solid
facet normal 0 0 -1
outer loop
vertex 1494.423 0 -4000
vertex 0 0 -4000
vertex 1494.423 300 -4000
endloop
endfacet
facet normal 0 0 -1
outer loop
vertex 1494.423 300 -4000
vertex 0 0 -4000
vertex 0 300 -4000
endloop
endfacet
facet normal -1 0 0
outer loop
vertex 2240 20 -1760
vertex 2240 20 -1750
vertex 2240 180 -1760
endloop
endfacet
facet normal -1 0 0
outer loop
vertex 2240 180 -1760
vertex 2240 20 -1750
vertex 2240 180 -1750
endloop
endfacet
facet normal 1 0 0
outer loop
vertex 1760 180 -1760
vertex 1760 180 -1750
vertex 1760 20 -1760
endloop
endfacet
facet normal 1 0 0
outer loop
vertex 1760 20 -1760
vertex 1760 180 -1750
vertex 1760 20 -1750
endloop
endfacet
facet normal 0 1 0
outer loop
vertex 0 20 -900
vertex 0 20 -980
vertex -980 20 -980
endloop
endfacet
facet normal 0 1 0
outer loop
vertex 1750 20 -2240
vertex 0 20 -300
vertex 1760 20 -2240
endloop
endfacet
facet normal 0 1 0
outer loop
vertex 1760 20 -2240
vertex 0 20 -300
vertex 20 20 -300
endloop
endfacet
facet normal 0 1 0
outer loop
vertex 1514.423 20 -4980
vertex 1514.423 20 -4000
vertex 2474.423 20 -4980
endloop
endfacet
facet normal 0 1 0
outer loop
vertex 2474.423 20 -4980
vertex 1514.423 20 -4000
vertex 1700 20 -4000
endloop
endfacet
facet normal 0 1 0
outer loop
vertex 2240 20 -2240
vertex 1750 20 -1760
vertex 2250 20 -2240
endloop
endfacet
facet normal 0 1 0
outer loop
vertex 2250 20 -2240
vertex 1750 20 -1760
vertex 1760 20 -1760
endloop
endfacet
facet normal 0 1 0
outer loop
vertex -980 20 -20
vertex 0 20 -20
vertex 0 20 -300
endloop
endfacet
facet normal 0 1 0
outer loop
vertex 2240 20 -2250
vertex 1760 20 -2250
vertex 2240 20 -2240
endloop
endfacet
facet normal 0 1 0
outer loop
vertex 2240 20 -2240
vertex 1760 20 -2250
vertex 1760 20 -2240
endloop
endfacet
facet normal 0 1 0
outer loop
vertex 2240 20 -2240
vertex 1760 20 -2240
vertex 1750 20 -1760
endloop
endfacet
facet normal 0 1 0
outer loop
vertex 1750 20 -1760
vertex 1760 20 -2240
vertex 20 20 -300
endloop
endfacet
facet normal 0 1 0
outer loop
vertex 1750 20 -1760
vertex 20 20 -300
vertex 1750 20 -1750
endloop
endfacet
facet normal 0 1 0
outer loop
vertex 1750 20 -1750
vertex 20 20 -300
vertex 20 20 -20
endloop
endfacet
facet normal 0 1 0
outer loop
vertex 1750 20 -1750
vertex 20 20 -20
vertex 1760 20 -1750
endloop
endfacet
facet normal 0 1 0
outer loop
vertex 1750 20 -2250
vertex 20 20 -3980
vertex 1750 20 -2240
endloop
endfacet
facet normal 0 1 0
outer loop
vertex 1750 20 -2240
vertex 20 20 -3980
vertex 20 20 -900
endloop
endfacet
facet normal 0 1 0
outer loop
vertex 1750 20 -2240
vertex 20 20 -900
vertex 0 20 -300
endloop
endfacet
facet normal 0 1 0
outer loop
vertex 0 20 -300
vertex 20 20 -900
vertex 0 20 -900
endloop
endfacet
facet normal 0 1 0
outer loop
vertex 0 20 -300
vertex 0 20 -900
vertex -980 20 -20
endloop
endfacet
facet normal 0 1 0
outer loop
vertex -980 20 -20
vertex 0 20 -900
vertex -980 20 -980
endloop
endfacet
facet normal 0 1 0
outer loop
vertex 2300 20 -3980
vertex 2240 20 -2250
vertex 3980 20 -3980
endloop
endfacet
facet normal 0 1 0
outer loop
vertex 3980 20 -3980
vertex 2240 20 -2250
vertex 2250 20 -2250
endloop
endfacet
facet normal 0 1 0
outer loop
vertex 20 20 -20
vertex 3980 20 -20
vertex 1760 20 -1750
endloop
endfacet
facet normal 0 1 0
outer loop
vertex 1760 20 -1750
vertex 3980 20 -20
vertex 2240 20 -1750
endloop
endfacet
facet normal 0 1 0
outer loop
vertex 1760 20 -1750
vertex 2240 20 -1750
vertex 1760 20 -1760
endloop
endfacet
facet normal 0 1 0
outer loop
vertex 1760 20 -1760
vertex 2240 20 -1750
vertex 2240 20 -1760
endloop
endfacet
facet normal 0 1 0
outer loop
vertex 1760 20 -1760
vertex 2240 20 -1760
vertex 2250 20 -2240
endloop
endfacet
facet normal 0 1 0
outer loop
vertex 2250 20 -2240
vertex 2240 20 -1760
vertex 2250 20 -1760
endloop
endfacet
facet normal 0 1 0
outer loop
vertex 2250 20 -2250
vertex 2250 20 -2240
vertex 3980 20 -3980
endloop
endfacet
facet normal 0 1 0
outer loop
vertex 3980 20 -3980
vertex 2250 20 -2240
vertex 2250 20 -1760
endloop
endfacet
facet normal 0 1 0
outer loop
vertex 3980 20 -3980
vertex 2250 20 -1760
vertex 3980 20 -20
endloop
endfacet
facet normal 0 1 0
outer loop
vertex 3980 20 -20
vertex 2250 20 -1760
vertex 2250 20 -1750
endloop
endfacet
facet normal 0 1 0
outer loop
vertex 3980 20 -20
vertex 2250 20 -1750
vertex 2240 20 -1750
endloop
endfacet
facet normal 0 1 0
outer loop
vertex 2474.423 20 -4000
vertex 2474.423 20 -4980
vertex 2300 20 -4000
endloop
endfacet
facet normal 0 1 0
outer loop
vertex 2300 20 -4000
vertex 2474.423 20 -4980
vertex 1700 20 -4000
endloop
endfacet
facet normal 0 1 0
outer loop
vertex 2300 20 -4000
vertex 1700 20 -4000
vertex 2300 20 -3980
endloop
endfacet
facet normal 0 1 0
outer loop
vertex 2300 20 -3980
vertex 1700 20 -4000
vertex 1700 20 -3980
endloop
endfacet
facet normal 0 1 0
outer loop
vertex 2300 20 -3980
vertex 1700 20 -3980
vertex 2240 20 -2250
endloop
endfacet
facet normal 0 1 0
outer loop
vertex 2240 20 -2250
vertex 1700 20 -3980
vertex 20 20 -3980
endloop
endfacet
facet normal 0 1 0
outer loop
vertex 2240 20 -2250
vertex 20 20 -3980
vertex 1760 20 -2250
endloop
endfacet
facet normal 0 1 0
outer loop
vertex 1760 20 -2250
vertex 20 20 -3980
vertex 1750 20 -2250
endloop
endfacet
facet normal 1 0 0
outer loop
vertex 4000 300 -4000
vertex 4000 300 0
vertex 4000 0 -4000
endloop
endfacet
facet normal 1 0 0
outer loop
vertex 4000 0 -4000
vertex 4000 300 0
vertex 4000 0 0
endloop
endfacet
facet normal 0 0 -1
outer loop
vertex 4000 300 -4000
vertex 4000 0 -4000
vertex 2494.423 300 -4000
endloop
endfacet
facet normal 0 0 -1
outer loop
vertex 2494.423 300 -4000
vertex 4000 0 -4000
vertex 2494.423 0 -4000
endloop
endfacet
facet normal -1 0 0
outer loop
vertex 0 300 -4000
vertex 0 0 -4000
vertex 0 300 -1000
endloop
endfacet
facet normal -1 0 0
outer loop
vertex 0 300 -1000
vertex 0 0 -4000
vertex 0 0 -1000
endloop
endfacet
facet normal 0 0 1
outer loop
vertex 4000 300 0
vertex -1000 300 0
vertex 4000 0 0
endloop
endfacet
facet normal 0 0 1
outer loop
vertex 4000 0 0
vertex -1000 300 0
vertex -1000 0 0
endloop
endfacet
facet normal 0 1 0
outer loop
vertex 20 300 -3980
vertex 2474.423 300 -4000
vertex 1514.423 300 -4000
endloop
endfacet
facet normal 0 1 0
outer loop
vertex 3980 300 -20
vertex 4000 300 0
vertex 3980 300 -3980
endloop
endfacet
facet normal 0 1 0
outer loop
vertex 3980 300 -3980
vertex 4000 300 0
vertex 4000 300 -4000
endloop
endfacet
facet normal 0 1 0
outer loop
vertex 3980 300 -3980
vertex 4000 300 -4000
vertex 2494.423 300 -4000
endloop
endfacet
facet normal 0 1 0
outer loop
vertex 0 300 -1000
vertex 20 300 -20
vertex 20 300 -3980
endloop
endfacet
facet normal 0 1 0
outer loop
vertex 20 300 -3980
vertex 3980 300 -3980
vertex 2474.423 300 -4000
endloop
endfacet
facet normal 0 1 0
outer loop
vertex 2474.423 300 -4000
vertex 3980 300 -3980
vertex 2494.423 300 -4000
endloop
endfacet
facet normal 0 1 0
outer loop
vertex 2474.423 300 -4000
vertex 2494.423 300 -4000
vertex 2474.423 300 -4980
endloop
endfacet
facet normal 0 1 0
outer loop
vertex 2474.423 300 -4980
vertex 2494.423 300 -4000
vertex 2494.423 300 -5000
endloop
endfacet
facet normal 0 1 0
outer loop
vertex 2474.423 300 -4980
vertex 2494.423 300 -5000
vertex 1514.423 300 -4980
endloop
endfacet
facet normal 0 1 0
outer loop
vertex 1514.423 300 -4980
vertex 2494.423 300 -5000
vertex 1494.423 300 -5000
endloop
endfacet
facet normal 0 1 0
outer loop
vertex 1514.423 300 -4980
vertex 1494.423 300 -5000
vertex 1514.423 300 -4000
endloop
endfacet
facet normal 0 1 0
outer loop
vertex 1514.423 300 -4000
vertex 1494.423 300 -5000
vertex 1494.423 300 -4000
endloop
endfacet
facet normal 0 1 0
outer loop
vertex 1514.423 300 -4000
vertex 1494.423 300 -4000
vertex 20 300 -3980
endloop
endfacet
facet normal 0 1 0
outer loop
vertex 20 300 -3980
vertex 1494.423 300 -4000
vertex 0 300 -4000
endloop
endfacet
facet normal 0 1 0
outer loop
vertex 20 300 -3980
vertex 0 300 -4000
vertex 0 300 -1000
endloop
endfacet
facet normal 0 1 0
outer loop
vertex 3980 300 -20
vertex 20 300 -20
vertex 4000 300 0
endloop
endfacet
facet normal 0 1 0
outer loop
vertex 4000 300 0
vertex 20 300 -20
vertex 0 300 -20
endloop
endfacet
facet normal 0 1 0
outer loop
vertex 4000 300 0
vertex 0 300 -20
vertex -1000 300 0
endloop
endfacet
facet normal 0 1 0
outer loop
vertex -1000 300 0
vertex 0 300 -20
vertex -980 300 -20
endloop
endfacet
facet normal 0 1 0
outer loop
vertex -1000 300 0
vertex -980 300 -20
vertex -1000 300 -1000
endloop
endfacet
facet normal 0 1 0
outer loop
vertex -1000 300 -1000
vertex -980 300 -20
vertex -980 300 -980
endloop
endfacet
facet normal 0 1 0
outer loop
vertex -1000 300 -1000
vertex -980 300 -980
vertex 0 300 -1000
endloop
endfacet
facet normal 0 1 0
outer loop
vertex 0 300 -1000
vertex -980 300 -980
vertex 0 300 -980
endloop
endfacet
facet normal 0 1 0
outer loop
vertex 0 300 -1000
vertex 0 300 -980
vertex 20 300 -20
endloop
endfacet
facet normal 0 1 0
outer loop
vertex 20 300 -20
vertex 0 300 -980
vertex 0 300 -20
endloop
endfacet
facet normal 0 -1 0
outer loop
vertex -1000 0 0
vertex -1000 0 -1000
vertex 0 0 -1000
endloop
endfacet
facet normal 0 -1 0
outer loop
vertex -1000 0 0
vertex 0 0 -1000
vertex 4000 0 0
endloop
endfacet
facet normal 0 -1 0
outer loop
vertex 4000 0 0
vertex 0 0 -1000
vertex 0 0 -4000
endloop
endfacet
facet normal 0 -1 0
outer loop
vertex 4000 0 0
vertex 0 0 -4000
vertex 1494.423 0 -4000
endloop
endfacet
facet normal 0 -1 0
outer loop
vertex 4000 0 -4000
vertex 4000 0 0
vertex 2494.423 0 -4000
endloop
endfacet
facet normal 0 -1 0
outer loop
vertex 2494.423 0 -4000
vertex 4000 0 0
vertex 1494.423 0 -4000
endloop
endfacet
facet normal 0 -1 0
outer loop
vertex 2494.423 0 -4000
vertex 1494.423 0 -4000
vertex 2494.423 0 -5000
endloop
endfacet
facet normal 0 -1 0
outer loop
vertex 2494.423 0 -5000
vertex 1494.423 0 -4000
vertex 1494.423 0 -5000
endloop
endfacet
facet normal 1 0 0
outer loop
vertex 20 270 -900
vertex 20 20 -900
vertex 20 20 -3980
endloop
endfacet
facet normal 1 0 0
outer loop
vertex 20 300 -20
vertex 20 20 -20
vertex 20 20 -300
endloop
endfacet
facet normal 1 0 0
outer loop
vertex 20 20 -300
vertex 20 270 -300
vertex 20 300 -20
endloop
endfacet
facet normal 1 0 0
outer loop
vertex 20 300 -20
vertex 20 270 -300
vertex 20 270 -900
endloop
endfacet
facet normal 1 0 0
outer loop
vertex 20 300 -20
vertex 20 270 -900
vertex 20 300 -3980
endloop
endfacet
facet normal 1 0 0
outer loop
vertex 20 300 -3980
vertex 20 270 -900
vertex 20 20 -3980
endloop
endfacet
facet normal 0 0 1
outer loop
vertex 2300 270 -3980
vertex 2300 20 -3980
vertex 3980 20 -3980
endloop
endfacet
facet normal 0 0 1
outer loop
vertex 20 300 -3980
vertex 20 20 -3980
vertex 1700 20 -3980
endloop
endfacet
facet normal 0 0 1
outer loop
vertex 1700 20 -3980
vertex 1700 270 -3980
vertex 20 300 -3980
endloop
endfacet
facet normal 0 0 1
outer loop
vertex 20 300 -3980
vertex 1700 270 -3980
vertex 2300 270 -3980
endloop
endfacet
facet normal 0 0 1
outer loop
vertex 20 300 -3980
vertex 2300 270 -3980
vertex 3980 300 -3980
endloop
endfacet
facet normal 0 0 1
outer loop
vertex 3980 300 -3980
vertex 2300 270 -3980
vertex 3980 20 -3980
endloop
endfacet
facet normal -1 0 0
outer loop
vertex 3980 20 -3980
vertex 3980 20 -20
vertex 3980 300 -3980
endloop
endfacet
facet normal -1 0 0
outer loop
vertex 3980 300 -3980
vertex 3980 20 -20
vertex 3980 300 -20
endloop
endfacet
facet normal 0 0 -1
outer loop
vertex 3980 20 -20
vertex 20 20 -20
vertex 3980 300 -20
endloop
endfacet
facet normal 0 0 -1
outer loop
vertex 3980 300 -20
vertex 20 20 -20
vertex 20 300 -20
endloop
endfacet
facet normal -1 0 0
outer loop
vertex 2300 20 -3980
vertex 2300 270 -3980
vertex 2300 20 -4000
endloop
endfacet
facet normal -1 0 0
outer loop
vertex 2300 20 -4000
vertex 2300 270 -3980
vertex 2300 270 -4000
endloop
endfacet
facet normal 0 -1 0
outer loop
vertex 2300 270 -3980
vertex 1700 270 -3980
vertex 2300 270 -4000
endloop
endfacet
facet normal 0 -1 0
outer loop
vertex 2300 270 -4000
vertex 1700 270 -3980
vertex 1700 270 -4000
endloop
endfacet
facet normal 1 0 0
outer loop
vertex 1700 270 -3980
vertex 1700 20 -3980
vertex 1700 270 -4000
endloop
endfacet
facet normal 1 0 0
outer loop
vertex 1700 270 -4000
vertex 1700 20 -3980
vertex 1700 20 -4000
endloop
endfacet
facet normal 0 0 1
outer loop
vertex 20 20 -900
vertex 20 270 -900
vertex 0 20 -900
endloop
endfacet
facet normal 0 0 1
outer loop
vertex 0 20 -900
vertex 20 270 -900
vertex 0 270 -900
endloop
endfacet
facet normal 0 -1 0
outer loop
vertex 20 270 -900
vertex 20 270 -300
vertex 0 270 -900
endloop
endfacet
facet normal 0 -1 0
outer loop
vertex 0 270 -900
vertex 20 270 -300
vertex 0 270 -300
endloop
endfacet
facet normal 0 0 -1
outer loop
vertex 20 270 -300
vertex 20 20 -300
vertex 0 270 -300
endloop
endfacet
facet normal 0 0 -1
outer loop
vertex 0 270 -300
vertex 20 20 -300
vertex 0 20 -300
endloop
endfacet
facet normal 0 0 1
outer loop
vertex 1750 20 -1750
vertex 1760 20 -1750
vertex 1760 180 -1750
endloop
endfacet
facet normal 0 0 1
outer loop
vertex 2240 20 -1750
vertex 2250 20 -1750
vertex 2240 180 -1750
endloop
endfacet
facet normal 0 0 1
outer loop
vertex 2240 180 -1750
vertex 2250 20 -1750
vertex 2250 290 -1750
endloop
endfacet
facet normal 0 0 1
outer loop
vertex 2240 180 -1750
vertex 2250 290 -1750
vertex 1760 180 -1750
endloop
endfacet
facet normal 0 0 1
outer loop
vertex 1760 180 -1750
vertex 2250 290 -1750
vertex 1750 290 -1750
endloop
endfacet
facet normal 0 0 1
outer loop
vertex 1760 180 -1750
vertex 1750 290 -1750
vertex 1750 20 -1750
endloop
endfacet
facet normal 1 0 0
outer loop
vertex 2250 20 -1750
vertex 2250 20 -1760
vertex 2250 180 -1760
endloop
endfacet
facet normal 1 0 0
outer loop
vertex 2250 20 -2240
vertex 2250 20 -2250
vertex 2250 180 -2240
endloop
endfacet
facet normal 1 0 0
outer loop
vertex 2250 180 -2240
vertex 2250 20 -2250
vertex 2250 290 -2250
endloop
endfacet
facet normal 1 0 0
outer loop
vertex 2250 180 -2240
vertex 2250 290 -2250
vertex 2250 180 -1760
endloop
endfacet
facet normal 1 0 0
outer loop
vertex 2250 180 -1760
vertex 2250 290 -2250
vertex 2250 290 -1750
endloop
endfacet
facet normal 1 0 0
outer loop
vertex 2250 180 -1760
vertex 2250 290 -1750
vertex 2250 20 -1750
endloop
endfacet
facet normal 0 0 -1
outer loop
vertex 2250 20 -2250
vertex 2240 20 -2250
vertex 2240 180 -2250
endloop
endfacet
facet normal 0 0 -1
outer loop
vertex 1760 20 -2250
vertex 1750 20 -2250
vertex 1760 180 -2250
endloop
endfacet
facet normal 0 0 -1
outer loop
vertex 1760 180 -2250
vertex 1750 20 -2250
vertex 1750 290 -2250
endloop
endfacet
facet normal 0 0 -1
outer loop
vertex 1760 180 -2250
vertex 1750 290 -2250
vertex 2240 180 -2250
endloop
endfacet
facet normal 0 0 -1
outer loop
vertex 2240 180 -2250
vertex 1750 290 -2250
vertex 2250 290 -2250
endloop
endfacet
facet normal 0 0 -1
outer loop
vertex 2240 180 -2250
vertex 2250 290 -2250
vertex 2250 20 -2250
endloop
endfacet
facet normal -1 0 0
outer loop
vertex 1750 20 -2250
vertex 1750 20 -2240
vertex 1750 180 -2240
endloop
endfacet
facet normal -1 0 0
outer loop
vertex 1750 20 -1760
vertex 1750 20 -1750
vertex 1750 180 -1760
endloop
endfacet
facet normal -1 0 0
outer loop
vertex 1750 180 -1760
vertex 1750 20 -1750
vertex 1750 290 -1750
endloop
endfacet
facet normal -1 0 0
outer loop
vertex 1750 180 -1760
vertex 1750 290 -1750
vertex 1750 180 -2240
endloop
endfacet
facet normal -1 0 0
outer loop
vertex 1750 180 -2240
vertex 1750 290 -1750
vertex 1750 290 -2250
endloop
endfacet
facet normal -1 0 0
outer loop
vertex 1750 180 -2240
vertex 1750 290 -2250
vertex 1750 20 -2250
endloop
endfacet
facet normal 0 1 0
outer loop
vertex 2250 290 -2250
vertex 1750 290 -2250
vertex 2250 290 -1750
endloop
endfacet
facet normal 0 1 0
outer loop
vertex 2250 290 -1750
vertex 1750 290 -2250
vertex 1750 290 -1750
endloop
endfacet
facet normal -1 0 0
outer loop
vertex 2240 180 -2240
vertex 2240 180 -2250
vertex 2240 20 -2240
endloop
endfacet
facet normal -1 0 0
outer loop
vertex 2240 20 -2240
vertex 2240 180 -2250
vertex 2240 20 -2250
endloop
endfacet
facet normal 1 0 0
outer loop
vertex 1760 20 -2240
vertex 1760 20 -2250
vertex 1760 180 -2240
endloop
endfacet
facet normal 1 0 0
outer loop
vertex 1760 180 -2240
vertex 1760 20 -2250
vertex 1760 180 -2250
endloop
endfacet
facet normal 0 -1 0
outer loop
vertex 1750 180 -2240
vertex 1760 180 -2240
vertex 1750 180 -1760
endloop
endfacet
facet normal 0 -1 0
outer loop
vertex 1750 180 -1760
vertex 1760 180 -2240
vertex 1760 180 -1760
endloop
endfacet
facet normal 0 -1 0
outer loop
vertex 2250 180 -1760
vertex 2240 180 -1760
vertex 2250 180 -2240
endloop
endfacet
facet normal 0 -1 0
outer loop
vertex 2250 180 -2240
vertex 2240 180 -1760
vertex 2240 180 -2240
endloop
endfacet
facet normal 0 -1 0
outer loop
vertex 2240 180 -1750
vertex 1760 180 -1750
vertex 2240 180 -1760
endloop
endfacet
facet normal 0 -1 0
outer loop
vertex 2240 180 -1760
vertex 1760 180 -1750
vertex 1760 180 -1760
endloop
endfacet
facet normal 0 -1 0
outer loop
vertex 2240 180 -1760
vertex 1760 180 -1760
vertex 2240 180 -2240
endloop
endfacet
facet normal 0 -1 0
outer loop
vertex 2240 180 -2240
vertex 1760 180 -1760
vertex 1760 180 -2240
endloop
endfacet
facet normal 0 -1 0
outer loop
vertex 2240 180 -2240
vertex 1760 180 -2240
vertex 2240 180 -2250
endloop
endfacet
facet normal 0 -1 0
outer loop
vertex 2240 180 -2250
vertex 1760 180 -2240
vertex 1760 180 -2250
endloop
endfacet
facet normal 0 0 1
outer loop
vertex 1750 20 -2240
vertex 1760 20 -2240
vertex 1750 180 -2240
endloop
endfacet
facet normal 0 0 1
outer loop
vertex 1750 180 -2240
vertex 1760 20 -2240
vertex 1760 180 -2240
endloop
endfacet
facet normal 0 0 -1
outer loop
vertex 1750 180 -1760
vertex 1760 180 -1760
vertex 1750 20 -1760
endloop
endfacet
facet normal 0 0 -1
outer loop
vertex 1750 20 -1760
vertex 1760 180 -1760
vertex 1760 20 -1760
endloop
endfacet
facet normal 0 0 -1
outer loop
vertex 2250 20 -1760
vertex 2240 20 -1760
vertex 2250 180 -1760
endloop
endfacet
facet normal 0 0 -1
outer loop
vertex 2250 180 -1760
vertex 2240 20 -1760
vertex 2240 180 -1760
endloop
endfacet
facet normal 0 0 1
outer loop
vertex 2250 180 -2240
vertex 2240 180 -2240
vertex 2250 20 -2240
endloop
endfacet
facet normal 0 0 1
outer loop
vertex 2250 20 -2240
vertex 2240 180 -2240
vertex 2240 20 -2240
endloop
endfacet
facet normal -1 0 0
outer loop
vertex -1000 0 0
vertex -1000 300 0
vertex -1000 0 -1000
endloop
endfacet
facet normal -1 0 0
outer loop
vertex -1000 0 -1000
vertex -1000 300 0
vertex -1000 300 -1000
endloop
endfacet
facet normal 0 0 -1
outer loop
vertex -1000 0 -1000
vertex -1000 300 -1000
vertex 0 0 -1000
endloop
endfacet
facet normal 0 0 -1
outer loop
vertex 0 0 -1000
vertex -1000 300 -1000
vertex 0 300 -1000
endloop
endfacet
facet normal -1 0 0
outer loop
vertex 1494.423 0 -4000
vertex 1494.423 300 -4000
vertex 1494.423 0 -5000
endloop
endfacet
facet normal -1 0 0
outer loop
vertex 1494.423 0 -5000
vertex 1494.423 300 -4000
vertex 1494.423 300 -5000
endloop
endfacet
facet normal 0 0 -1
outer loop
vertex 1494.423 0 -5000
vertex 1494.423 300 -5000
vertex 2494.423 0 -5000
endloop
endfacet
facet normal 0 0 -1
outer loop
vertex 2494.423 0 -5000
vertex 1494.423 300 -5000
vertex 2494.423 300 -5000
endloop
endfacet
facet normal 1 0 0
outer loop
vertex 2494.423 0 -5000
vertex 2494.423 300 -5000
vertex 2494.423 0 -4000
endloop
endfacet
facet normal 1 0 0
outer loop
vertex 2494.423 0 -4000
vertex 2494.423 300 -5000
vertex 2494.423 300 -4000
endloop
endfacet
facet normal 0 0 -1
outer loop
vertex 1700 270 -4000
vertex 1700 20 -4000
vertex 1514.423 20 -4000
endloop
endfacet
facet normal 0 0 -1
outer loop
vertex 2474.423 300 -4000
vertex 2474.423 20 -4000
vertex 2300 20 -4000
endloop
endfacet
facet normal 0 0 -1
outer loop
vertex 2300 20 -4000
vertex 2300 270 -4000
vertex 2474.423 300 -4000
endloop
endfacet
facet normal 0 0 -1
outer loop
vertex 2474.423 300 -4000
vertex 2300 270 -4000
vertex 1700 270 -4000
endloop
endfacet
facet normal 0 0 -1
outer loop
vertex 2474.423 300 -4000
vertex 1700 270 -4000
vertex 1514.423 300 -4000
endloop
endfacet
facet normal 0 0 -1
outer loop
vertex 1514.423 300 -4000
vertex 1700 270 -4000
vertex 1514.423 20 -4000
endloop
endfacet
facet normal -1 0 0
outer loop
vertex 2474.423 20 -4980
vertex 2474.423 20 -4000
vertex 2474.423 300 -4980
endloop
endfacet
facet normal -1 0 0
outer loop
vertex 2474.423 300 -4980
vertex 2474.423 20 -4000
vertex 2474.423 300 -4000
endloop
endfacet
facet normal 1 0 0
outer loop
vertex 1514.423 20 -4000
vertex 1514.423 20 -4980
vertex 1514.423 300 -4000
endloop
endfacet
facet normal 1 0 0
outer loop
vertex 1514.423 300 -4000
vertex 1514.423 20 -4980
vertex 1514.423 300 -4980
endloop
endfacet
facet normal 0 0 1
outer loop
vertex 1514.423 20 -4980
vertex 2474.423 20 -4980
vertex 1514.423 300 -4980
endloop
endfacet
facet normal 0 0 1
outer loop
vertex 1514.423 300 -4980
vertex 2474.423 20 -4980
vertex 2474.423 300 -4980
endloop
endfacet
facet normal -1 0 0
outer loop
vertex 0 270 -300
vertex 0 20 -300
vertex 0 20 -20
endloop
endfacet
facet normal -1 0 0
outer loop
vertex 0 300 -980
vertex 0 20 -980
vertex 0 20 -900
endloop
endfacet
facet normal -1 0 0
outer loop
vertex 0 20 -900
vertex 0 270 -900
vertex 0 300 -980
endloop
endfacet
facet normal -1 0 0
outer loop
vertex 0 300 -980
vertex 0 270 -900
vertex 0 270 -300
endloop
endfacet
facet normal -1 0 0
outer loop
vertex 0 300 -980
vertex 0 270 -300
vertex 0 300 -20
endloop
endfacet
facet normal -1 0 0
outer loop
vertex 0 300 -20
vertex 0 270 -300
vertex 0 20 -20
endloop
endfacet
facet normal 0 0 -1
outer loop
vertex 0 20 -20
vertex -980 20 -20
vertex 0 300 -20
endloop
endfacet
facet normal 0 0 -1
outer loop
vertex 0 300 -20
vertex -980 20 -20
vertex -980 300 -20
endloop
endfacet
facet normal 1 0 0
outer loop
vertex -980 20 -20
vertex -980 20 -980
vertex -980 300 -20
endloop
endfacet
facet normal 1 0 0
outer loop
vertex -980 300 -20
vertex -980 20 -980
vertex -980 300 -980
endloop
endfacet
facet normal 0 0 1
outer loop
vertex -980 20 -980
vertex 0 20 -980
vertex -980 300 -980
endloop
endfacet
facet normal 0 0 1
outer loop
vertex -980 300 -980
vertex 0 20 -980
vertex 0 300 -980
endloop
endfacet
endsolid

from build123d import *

# Parameters (mm, degrees)
SKETCH_1_W           = 4000
SKETCH_1_H           = 4000
EXTRUDE_1_DEPTH      = 300
SKETCH_2_W           = 3960
SKETCH_2_H           = 3960
CUT_EXTRUDE_1_DEPTH  = 280
SKETCH_3_W           = 600
SKETCH_3_H           = 250
CUT_EXTRUDE_2_DEPTH  = 20
SKETCH_5_W           = 600
SKETCH_5_H           = 250
CUT_EXTRUDE_3_DEPTH  = 20
SKETCH_6_W           = 500
SKETCH_6_H           = 500
EXTRUDE_2_DEPTH      = 270
SKETCH_8_W           = 480
SKETCH_8_H           = 160
CUT_EXTRUDE_4_DEPTH  = 500
SKETCH_11_W          = 480
SKETCH_11_H          = 160
CUT_EXTRUDE_5_DEPTH  = 500
EXTRUDE_3_DEPTH      = 280
EXTRUDE_3_DEPTH_BACK = 20
SKETCH_12_W          = 1000
SKETCH_12_H          = 1000
SKETCH_13_W          = 980
SKETCH_13_H          = 960
SKETCH_13_W_2        = 960
SKETCH_13_H_2        = 980
CUT_EXTRUDE_6_DEPTH  = 280


with BuildPart() as part:
    # 草图1 → 凸台-拉伸1 (new body)
    with BuildSketch(Plane(origin=(0, 0, 0), x_dir=(1, 0, 0), z_dir=(0, 1, 0))):
        with Locations((2000, 2000)):
            Rectangle(SKETCH_1_W, SKETCH_1_H)
    extrude(amount=EXTRUDE_1_DEPTH)

    # 草图2 → 切除-拉伸1 (cut)
    with BuildSketch(Plane(origin=(0, 300, 0), x_dir=(1, 0, 0), z_dir=(0, 1, 0))):
        with Locations((2000, 2000)):
            Rectangle(SKETCH_2_W, SKETCH_2_H)
    extrude(amount=-CUT_EXTRUDE_1_DEPTH, mode=Mode.SUBTRACT)

    # 草图3 → 切除-拉伸2 (cut)
    with BuildSketch(Plane(origin=(0, 0, -4000), x_dir=(-1, 0, 0), z_dir=(0, 0, -1))):
        with Locations((-2000, 145)):
            Rectangle(SKETCH_3_W, SKETCH_3_H)
    extrude(amount=-CUT_EXTRUDE_2_DEPTH, mode=Mode.SUBTRACT)

    # 草图5 → 切除-拉伸3 (cut)
    with BuildSketch(Plane.ZY):
        with Locations((-600, 145)):
            Rectangle(SKETCH_5_W, SKETCH_5_H)
    extrude(amount=-CUT_EXTRUDE_3_DEPTH, mode=Mode.SUBTRACT)

    # 草图6 → 凸台-拉伸2 (add)
    with BuildSketch(Plane(origin=(0, 20, 0), x_dir=(1, 0, 0), z_dir=(0, 1, 0))):
        with Locations((2000, 2000)):
            Rectangle(SKETCH_6_W, SKETCH_6_H)
    extrude(amount=EXTRUDE_2_DEPTH)

    # 草图8 → 切除-拉伸4 (cut)
    with BuildSketch(Plane.XY.offset(-1750)):
        with Locations((2000, 100)):
            Rectangle(SKETCH_8_W, SKETCH_8_H)
    extrude(amount=-CUT_EXTRUDE_4_DEPTH, mode=Mode.SUBTRACT)

    # 草图11 → 切除-拉伸5 (cut)
    with BuildSketch(Plane.ZY.offset(-1750)):
        with Locations((-2000, 100)):
            Rectangle(SKETCH_11_W, SKETCH_11_H)
    extrude(amount=-CUT_EXTRUDE_5_DEPTH, mode=Mode.SUBTRACT)

    # 草图12 → 凸台-拉伸3 (add, two sides: drawn at the far end of the back side and taken through both)
    with BuildSketch(Plane(origin=(0, 20, 0), x_dir=(1, 0, 0), z_dir=(0, 1, 0)).offset(-EXTRUDE_3_DEPTH_BACK)):
        with Locations((-500, 500)):
            Rectangle(SKETCH_12_W, SKETCH_12_H)
        with Locations((1994.423170097, 4500)):
            Rectangle(SKETCH_12_W, SKETCH_12_H)
    extrude(amount=EXTRUDE_3_DEPTH + EXTRUDE_3_DEPTH_BACK)

    # 草图13 → 切除-拉伸6 (cut)
    with BuildSketch(Plane(origin=(0, 300, 0), x_dir=(1, 0, 0), z_dir=(0, 1, 0))):
        with Locations((-490, 500)):
            Rectangle(SKETCH_13_W, SKETCH_13_H)
        with Locations((1994.423170097, 4490)):
            Rectangle(SKETCH_13_W_2, SKETCH_13_H_2)
    extrude(amount=-CUT_EXTRUDE_6_DEPTH, mode=Mode.SUBTRACT)


solid = part.part
